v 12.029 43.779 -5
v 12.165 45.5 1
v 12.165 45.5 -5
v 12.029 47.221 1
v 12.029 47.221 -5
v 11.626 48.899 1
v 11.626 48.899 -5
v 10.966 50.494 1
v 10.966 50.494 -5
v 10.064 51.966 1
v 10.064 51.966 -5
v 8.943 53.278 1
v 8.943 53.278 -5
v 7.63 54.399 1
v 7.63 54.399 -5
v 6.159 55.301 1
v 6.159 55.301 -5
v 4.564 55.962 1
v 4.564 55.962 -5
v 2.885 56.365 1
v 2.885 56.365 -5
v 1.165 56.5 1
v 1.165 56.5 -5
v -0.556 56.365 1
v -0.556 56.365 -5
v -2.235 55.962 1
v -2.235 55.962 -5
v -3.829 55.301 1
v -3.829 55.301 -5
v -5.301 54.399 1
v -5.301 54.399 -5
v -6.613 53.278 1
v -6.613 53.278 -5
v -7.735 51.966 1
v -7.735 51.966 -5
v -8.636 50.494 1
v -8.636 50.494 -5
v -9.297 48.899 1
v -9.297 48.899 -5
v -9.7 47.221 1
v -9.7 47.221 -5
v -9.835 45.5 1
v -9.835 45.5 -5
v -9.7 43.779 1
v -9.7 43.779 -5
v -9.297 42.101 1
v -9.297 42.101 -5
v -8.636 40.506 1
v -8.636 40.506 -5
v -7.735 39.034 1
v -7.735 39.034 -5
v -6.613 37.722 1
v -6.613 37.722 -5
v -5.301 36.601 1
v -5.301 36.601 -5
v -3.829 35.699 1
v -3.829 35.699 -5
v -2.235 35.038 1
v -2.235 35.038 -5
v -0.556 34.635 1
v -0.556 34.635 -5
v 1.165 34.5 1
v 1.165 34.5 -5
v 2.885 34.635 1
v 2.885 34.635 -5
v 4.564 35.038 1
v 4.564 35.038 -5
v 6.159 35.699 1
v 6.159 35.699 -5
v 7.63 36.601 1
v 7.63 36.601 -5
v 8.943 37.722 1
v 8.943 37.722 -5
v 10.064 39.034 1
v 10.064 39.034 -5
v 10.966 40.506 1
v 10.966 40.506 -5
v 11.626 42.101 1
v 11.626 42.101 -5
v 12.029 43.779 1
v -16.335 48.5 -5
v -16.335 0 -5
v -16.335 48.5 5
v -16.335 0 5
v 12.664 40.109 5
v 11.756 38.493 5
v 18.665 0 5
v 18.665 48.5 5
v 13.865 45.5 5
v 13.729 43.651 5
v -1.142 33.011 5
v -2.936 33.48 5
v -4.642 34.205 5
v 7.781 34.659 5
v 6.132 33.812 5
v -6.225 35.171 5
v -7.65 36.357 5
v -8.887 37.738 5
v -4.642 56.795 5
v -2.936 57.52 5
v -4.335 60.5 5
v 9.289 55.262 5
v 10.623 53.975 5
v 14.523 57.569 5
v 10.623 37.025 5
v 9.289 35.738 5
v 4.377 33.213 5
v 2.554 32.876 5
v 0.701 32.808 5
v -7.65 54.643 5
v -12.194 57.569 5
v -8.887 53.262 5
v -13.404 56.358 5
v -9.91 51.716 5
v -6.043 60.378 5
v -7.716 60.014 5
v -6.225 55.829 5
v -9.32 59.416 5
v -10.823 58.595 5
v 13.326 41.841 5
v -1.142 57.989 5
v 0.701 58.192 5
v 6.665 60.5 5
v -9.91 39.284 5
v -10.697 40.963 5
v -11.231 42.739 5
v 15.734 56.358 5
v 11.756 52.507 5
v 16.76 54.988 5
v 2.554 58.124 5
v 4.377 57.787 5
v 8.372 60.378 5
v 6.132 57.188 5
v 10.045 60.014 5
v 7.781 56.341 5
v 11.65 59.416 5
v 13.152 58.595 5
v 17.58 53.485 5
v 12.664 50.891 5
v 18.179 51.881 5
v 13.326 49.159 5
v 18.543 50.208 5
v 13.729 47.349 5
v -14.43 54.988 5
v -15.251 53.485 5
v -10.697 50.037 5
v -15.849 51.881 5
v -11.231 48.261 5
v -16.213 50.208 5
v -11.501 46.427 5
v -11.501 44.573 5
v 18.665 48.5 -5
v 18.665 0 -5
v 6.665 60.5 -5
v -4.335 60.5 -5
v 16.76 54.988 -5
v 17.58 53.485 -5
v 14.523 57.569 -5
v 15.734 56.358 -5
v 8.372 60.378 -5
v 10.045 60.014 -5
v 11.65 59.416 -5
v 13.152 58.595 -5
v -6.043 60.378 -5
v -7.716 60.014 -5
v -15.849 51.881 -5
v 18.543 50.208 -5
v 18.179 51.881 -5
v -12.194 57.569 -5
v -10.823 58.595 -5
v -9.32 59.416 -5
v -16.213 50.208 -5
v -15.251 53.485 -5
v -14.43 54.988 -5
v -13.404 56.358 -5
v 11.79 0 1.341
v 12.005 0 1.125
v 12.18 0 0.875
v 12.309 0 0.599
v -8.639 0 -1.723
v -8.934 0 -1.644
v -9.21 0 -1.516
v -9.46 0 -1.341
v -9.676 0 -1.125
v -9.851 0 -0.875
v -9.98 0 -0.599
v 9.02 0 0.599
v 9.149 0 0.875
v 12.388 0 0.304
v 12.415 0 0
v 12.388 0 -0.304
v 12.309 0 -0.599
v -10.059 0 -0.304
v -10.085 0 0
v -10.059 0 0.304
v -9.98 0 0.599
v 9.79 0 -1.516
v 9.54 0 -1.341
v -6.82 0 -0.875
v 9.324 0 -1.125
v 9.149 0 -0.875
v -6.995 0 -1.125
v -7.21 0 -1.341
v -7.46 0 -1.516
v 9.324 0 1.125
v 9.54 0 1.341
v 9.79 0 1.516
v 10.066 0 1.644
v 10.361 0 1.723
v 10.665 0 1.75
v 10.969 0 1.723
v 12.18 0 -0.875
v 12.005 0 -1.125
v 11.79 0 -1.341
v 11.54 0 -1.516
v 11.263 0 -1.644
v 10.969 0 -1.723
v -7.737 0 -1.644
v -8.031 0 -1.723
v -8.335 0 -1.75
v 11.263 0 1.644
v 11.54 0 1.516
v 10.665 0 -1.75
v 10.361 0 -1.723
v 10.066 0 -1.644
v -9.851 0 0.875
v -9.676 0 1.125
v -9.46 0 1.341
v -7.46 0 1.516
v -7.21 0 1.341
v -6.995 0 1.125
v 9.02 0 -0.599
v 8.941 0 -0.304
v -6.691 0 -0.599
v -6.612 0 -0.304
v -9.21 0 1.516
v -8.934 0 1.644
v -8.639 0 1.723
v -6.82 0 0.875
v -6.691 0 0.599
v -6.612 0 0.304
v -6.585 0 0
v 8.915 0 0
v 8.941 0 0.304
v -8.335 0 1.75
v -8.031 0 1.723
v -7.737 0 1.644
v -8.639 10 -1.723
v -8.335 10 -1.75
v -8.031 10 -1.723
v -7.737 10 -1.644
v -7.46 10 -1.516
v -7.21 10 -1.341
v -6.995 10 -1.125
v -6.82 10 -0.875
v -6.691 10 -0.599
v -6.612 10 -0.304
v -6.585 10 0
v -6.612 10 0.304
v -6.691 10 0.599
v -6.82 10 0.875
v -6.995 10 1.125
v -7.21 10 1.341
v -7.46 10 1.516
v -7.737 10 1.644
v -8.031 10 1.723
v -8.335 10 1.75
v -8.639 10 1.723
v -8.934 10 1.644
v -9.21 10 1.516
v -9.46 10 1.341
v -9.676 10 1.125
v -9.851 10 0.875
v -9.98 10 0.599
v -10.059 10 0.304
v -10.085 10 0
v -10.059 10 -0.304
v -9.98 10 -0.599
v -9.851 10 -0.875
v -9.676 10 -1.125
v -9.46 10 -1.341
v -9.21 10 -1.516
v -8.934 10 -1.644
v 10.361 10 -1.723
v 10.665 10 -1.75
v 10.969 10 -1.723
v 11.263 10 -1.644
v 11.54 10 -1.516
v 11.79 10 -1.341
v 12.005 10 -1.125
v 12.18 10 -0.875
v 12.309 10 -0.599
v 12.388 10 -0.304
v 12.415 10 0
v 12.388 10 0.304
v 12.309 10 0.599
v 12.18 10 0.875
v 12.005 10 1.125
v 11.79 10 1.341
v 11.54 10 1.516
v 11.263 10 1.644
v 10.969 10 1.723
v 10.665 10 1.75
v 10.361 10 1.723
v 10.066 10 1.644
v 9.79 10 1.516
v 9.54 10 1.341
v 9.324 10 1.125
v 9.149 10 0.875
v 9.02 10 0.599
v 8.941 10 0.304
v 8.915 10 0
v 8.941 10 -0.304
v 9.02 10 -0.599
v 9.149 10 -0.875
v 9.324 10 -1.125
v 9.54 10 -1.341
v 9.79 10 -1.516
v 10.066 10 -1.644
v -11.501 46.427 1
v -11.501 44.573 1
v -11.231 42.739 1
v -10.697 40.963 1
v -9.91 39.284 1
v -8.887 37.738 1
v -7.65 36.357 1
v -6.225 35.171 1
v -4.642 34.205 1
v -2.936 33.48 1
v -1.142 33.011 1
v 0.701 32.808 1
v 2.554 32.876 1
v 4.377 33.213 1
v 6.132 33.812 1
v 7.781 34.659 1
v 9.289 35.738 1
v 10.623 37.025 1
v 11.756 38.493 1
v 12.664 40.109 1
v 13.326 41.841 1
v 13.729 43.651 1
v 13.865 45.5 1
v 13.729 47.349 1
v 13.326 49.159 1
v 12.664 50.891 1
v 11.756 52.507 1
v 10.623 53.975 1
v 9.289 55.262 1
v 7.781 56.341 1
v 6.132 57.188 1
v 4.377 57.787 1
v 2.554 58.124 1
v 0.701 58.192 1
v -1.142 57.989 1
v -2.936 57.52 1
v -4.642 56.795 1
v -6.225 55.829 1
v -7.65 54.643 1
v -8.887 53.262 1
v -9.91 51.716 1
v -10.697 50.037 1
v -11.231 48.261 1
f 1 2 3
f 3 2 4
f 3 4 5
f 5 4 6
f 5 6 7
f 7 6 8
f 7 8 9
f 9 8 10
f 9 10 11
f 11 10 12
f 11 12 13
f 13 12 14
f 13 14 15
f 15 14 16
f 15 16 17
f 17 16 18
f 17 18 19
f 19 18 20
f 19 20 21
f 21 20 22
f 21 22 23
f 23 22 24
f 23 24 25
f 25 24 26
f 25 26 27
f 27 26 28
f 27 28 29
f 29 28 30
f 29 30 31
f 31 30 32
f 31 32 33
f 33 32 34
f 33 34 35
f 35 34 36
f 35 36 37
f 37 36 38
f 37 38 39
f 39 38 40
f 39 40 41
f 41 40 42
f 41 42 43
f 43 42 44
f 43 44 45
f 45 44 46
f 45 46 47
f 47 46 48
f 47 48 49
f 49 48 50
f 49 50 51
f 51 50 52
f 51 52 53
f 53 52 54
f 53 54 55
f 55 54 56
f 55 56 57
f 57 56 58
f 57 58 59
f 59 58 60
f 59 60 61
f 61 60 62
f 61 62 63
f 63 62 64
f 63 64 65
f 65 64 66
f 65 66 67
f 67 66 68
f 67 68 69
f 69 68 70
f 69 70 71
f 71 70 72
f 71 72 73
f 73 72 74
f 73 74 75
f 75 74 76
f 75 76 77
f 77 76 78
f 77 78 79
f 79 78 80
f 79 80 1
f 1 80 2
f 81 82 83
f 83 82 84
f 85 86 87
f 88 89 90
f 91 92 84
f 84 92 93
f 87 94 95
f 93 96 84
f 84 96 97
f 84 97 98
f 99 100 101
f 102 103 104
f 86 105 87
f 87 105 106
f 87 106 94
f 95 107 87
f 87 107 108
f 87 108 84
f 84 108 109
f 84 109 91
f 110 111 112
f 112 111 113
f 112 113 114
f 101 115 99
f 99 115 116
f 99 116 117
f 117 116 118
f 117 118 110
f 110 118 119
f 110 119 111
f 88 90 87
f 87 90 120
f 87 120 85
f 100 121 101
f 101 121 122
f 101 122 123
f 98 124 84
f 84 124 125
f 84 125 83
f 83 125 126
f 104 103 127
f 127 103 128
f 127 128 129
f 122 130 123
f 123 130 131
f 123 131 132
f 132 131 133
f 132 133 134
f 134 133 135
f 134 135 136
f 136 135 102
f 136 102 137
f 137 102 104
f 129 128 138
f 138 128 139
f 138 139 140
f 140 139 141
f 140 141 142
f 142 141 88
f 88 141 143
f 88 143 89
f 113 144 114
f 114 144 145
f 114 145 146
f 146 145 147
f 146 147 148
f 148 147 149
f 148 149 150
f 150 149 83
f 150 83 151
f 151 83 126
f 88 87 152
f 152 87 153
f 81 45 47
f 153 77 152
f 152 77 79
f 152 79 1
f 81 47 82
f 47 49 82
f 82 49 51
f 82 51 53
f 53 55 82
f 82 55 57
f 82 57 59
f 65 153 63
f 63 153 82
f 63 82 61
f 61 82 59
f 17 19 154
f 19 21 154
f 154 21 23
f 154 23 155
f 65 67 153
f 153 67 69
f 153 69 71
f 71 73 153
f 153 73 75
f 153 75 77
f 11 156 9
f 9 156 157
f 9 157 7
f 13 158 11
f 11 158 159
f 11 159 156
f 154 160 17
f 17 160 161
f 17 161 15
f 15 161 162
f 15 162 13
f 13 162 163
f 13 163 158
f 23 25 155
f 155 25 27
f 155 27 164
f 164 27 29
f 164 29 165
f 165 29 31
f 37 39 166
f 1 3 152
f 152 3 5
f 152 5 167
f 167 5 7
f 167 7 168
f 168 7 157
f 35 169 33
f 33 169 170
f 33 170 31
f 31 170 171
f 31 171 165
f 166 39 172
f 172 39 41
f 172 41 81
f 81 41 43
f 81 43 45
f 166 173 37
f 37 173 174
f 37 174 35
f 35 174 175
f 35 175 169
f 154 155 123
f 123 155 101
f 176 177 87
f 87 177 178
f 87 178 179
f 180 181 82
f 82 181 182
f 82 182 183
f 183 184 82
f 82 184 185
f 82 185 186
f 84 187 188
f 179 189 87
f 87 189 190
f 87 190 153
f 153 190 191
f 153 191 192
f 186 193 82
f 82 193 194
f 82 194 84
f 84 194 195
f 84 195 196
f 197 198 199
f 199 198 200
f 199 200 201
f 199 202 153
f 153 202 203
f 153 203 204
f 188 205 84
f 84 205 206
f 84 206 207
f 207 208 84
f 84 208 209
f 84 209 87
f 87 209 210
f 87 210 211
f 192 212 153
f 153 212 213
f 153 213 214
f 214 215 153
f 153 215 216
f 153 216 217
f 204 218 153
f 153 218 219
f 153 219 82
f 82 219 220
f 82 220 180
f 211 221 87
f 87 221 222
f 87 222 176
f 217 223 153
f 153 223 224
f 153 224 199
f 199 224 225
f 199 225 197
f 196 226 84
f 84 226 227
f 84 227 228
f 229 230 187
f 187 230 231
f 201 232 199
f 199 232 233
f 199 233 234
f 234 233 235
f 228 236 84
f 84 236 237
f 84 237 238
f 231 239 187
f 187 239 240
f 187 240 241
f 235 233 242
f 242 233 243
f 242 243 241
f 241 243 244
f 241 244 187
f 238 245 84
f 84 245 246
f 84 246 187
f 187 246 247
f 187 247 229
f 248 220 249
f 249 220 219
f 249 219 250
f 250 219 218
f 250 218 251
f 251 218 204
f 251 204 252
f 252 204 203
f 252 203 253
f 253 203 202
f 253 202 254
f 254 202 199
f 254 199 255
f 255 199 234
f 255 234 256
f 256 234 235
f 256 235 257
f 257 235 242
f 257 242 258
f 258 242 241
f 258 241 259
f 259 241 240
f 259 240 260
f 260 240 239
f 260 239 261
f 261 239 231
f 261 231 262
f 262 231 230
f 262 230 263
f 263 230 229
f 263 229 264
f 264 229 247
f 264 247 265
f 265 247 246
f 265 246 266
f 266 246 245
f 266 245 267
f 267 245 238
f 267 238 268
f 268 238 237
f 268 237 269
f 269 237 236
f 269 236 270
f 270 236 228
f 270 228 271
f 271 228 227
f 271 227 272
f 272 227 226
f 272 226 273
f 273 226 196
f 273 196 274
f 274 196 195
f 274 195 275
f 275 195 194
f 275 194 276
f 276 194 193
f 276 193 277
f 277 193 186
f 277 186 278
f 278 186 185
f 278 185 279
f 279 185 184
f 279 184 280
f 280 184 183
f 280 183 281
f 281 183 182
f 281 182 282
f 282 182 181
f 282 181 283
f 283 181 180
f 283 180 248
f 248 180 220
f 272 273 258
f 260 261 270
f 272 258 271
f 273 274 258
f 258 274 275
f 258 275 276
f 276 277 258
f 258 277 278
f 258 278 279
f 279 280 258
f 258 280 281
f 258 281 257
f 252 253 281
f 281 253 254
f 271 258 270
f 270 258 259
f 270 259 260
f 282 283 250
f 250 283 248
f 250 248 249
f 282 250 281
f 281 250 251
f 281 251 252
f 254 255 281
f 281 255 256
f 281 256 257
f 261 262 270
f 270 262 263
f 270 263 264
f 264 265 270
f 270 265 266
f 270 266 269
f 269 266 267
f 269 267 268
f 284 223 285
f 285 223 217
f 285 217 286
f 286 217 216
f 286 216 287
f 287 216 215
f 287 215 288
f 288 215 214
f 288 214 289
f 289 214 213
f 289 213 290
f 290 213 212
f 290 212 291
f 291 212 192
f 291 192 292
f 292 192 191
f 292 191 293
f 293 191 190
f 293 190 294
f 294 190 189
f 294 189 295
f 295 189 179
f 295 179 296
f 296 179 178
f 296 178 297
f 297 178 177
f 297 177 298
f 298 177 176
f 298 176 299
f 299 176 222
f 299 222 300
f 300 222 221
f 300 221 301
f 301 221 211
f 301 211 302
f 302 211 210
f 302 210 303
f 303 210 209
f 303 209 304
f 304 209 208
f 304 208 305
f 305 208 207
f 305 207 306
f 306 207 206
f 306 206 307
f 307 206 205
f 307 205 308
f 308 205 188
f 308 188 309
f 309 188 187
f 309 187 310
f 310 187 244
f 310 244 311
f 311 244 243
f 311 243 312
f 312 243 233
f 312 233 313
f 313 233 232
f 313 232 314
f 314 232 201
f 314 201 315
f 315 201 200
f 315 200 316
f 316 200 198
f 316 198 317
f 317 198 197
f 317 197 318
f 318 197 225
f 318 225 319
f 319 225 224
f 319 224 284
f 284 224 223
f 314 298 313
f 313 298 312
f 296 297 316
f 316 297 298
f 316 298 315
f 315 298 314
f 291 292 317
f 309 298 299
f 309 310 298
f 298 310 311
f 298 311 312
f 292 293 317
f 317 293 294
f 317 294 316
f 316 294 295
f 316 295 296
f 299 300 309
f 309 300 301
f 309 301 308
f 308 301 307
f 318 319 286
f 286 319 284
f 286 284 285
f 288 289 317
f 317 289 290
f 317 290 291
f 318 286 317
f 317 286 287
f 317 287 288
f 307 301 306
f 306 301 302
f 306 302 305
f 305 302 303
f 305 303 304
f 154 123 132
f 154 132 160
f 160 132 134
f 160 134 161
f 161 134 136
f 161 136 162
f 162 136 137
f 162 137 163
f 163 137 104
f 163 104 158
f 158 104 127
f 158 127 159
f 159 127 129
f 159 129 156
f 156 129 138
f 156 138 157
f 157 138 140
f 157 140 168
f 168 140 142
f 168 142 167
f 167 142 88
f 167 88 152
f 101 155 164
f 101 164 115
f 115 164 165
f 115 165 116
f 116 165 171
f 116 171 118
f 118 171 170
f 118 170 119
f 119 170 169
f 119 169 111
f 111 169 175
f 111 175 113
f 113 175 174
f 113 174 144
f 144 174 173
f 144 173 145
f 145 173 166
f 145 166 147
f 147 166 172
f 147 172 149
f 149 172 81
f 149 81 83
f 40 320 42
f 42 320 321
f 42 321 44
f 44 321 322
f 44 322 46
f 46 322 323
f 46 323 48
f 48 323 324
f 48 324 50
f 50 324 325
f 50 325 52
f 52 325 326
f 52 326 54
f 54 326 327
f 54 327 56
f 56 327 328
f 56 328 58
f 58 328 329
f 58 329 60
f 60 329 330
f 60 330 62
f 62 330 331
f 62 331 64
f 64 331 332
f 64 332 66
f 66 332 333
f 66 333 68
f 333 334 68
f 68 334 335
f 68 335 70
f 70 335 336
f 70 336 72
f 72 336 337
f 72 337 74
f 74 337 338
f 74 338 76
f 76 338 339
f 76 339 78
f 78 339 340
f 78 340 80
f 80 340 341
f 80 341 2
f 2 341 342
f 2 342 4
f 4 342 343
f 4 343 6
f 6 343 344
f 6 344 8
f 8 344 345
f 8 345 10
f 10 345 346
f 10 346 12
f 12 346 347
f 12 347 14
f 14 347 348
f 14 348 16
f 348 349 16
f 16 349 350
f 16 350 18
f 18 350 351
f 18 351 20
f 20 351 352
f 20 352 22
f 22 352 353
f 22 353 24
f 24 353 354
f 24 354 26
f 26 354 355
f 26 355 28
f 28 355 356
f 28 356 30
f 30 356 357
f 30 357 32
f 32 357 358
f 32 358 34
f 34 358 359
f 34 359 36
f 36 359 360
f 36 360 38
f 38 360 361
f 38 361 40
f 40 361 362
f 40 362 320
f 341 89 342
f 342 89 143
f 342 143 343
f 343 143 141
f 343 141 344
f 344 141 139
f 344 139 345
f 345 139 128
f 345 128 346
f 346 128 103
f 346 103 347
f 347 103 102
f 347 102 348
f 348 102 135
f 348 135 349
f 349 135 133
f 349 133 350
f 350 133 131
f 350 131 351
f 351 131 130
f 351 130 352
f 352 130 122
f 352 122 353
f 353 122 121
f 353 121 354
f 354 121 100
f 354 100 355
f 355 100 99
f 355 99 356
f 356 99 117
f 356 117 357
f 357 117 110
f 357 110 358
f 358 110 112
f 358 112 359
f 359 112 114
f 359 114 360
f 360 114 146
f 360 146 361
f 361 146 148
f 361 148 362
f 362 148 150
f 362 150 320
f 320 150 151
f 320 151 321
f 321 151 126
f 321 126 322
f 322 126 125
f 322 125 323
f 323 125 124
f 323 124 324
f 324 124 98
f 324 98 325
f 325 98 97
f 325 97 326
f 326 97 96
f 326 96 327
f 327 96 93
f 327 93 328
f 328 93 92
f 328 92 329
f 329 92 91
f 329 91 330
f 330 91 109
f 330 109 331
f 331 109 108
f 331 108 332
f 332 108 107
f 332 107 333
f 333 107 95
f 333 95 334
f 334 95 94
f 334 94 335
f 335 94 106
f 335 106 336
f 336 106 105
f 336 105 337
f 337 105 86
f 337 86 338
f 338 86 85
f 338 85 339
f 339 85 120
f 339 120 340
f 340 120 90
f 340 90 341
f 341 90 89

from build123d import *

# Parameters (mm, degrees)
SKETCH1_W           = 35
SKETCH1_H           = 10
BOSS_EXTRUDE1_DEPTH = 60.5
SKETCH2_R           = 11
CUT_EXTRUDE1_DEPTH  = 11
SKETCH3_R           = 1.75
CUT_EXTRUDE2_DEPTH  = 10
FILLET1_R           = 12
SKETCH4_R           = 12.7
CUT_EXTRUDE3_DEPTH  = 4


with BuildPart() as part:
    # Sketch1 → Boss-Extrude1 (new body)
    with BuildSketch(Plane(origin=(0, 0, 0), x_dir=(1, 0, 0), z_dir=(0, 1, 0))):
        with Locations((1.164675851, 0)):
            Rectangle(SKETCH1_W, SKETCH1_H)
    extrude(amount=BOSS_EXTRUDE1_DEPTH)

    # Sketch2 → Cut-Extrude1 (cut, through all)
    with BuildSketch(Plane.XY.offset(5)):
        with Locations((1.164675851, 45.5)):
            Circle(SKETCH2_R)
    extrude(amount=-CUT_EXTRUDE1_DEPTH, mode=Mode.SUBTRACT)

    # Sketch3 → Cut-Extrude2 (cut)
    with BuildSketch(Plane.XZ):
        with Locations((-8.335324149, 0)):
            Circle(SKETCH3_R)
        with Locations((10.664675851, 0)):
            Circle(SKETCH3_R)
    extrude(amount=-CUT_EXTRUDE2_DEPTH, mode=Mode.SUBTRACT)

    # Fillet1
    fillet1_edges = [part.edges().sort_by_distance(p)[0] for p in [
        (18.664675851, 60.5, 0),
        (-16.335324149, 60.5, 0),
    ]]
    fillet(fillet1_edges, radius=FILLET1_R)

    # Sketch4 → Cut-Extrude3 (cut)
    with BuildSketch(Plane.XY.offset(5)):
        with Locations((1.164675851, 45.5)):
            Circle(SKETCH4_R)
    extrude(amount=-CUT_EXTRUDE3_DEPTH, mode=Mode.SUBTRACT)


solid = part.part
